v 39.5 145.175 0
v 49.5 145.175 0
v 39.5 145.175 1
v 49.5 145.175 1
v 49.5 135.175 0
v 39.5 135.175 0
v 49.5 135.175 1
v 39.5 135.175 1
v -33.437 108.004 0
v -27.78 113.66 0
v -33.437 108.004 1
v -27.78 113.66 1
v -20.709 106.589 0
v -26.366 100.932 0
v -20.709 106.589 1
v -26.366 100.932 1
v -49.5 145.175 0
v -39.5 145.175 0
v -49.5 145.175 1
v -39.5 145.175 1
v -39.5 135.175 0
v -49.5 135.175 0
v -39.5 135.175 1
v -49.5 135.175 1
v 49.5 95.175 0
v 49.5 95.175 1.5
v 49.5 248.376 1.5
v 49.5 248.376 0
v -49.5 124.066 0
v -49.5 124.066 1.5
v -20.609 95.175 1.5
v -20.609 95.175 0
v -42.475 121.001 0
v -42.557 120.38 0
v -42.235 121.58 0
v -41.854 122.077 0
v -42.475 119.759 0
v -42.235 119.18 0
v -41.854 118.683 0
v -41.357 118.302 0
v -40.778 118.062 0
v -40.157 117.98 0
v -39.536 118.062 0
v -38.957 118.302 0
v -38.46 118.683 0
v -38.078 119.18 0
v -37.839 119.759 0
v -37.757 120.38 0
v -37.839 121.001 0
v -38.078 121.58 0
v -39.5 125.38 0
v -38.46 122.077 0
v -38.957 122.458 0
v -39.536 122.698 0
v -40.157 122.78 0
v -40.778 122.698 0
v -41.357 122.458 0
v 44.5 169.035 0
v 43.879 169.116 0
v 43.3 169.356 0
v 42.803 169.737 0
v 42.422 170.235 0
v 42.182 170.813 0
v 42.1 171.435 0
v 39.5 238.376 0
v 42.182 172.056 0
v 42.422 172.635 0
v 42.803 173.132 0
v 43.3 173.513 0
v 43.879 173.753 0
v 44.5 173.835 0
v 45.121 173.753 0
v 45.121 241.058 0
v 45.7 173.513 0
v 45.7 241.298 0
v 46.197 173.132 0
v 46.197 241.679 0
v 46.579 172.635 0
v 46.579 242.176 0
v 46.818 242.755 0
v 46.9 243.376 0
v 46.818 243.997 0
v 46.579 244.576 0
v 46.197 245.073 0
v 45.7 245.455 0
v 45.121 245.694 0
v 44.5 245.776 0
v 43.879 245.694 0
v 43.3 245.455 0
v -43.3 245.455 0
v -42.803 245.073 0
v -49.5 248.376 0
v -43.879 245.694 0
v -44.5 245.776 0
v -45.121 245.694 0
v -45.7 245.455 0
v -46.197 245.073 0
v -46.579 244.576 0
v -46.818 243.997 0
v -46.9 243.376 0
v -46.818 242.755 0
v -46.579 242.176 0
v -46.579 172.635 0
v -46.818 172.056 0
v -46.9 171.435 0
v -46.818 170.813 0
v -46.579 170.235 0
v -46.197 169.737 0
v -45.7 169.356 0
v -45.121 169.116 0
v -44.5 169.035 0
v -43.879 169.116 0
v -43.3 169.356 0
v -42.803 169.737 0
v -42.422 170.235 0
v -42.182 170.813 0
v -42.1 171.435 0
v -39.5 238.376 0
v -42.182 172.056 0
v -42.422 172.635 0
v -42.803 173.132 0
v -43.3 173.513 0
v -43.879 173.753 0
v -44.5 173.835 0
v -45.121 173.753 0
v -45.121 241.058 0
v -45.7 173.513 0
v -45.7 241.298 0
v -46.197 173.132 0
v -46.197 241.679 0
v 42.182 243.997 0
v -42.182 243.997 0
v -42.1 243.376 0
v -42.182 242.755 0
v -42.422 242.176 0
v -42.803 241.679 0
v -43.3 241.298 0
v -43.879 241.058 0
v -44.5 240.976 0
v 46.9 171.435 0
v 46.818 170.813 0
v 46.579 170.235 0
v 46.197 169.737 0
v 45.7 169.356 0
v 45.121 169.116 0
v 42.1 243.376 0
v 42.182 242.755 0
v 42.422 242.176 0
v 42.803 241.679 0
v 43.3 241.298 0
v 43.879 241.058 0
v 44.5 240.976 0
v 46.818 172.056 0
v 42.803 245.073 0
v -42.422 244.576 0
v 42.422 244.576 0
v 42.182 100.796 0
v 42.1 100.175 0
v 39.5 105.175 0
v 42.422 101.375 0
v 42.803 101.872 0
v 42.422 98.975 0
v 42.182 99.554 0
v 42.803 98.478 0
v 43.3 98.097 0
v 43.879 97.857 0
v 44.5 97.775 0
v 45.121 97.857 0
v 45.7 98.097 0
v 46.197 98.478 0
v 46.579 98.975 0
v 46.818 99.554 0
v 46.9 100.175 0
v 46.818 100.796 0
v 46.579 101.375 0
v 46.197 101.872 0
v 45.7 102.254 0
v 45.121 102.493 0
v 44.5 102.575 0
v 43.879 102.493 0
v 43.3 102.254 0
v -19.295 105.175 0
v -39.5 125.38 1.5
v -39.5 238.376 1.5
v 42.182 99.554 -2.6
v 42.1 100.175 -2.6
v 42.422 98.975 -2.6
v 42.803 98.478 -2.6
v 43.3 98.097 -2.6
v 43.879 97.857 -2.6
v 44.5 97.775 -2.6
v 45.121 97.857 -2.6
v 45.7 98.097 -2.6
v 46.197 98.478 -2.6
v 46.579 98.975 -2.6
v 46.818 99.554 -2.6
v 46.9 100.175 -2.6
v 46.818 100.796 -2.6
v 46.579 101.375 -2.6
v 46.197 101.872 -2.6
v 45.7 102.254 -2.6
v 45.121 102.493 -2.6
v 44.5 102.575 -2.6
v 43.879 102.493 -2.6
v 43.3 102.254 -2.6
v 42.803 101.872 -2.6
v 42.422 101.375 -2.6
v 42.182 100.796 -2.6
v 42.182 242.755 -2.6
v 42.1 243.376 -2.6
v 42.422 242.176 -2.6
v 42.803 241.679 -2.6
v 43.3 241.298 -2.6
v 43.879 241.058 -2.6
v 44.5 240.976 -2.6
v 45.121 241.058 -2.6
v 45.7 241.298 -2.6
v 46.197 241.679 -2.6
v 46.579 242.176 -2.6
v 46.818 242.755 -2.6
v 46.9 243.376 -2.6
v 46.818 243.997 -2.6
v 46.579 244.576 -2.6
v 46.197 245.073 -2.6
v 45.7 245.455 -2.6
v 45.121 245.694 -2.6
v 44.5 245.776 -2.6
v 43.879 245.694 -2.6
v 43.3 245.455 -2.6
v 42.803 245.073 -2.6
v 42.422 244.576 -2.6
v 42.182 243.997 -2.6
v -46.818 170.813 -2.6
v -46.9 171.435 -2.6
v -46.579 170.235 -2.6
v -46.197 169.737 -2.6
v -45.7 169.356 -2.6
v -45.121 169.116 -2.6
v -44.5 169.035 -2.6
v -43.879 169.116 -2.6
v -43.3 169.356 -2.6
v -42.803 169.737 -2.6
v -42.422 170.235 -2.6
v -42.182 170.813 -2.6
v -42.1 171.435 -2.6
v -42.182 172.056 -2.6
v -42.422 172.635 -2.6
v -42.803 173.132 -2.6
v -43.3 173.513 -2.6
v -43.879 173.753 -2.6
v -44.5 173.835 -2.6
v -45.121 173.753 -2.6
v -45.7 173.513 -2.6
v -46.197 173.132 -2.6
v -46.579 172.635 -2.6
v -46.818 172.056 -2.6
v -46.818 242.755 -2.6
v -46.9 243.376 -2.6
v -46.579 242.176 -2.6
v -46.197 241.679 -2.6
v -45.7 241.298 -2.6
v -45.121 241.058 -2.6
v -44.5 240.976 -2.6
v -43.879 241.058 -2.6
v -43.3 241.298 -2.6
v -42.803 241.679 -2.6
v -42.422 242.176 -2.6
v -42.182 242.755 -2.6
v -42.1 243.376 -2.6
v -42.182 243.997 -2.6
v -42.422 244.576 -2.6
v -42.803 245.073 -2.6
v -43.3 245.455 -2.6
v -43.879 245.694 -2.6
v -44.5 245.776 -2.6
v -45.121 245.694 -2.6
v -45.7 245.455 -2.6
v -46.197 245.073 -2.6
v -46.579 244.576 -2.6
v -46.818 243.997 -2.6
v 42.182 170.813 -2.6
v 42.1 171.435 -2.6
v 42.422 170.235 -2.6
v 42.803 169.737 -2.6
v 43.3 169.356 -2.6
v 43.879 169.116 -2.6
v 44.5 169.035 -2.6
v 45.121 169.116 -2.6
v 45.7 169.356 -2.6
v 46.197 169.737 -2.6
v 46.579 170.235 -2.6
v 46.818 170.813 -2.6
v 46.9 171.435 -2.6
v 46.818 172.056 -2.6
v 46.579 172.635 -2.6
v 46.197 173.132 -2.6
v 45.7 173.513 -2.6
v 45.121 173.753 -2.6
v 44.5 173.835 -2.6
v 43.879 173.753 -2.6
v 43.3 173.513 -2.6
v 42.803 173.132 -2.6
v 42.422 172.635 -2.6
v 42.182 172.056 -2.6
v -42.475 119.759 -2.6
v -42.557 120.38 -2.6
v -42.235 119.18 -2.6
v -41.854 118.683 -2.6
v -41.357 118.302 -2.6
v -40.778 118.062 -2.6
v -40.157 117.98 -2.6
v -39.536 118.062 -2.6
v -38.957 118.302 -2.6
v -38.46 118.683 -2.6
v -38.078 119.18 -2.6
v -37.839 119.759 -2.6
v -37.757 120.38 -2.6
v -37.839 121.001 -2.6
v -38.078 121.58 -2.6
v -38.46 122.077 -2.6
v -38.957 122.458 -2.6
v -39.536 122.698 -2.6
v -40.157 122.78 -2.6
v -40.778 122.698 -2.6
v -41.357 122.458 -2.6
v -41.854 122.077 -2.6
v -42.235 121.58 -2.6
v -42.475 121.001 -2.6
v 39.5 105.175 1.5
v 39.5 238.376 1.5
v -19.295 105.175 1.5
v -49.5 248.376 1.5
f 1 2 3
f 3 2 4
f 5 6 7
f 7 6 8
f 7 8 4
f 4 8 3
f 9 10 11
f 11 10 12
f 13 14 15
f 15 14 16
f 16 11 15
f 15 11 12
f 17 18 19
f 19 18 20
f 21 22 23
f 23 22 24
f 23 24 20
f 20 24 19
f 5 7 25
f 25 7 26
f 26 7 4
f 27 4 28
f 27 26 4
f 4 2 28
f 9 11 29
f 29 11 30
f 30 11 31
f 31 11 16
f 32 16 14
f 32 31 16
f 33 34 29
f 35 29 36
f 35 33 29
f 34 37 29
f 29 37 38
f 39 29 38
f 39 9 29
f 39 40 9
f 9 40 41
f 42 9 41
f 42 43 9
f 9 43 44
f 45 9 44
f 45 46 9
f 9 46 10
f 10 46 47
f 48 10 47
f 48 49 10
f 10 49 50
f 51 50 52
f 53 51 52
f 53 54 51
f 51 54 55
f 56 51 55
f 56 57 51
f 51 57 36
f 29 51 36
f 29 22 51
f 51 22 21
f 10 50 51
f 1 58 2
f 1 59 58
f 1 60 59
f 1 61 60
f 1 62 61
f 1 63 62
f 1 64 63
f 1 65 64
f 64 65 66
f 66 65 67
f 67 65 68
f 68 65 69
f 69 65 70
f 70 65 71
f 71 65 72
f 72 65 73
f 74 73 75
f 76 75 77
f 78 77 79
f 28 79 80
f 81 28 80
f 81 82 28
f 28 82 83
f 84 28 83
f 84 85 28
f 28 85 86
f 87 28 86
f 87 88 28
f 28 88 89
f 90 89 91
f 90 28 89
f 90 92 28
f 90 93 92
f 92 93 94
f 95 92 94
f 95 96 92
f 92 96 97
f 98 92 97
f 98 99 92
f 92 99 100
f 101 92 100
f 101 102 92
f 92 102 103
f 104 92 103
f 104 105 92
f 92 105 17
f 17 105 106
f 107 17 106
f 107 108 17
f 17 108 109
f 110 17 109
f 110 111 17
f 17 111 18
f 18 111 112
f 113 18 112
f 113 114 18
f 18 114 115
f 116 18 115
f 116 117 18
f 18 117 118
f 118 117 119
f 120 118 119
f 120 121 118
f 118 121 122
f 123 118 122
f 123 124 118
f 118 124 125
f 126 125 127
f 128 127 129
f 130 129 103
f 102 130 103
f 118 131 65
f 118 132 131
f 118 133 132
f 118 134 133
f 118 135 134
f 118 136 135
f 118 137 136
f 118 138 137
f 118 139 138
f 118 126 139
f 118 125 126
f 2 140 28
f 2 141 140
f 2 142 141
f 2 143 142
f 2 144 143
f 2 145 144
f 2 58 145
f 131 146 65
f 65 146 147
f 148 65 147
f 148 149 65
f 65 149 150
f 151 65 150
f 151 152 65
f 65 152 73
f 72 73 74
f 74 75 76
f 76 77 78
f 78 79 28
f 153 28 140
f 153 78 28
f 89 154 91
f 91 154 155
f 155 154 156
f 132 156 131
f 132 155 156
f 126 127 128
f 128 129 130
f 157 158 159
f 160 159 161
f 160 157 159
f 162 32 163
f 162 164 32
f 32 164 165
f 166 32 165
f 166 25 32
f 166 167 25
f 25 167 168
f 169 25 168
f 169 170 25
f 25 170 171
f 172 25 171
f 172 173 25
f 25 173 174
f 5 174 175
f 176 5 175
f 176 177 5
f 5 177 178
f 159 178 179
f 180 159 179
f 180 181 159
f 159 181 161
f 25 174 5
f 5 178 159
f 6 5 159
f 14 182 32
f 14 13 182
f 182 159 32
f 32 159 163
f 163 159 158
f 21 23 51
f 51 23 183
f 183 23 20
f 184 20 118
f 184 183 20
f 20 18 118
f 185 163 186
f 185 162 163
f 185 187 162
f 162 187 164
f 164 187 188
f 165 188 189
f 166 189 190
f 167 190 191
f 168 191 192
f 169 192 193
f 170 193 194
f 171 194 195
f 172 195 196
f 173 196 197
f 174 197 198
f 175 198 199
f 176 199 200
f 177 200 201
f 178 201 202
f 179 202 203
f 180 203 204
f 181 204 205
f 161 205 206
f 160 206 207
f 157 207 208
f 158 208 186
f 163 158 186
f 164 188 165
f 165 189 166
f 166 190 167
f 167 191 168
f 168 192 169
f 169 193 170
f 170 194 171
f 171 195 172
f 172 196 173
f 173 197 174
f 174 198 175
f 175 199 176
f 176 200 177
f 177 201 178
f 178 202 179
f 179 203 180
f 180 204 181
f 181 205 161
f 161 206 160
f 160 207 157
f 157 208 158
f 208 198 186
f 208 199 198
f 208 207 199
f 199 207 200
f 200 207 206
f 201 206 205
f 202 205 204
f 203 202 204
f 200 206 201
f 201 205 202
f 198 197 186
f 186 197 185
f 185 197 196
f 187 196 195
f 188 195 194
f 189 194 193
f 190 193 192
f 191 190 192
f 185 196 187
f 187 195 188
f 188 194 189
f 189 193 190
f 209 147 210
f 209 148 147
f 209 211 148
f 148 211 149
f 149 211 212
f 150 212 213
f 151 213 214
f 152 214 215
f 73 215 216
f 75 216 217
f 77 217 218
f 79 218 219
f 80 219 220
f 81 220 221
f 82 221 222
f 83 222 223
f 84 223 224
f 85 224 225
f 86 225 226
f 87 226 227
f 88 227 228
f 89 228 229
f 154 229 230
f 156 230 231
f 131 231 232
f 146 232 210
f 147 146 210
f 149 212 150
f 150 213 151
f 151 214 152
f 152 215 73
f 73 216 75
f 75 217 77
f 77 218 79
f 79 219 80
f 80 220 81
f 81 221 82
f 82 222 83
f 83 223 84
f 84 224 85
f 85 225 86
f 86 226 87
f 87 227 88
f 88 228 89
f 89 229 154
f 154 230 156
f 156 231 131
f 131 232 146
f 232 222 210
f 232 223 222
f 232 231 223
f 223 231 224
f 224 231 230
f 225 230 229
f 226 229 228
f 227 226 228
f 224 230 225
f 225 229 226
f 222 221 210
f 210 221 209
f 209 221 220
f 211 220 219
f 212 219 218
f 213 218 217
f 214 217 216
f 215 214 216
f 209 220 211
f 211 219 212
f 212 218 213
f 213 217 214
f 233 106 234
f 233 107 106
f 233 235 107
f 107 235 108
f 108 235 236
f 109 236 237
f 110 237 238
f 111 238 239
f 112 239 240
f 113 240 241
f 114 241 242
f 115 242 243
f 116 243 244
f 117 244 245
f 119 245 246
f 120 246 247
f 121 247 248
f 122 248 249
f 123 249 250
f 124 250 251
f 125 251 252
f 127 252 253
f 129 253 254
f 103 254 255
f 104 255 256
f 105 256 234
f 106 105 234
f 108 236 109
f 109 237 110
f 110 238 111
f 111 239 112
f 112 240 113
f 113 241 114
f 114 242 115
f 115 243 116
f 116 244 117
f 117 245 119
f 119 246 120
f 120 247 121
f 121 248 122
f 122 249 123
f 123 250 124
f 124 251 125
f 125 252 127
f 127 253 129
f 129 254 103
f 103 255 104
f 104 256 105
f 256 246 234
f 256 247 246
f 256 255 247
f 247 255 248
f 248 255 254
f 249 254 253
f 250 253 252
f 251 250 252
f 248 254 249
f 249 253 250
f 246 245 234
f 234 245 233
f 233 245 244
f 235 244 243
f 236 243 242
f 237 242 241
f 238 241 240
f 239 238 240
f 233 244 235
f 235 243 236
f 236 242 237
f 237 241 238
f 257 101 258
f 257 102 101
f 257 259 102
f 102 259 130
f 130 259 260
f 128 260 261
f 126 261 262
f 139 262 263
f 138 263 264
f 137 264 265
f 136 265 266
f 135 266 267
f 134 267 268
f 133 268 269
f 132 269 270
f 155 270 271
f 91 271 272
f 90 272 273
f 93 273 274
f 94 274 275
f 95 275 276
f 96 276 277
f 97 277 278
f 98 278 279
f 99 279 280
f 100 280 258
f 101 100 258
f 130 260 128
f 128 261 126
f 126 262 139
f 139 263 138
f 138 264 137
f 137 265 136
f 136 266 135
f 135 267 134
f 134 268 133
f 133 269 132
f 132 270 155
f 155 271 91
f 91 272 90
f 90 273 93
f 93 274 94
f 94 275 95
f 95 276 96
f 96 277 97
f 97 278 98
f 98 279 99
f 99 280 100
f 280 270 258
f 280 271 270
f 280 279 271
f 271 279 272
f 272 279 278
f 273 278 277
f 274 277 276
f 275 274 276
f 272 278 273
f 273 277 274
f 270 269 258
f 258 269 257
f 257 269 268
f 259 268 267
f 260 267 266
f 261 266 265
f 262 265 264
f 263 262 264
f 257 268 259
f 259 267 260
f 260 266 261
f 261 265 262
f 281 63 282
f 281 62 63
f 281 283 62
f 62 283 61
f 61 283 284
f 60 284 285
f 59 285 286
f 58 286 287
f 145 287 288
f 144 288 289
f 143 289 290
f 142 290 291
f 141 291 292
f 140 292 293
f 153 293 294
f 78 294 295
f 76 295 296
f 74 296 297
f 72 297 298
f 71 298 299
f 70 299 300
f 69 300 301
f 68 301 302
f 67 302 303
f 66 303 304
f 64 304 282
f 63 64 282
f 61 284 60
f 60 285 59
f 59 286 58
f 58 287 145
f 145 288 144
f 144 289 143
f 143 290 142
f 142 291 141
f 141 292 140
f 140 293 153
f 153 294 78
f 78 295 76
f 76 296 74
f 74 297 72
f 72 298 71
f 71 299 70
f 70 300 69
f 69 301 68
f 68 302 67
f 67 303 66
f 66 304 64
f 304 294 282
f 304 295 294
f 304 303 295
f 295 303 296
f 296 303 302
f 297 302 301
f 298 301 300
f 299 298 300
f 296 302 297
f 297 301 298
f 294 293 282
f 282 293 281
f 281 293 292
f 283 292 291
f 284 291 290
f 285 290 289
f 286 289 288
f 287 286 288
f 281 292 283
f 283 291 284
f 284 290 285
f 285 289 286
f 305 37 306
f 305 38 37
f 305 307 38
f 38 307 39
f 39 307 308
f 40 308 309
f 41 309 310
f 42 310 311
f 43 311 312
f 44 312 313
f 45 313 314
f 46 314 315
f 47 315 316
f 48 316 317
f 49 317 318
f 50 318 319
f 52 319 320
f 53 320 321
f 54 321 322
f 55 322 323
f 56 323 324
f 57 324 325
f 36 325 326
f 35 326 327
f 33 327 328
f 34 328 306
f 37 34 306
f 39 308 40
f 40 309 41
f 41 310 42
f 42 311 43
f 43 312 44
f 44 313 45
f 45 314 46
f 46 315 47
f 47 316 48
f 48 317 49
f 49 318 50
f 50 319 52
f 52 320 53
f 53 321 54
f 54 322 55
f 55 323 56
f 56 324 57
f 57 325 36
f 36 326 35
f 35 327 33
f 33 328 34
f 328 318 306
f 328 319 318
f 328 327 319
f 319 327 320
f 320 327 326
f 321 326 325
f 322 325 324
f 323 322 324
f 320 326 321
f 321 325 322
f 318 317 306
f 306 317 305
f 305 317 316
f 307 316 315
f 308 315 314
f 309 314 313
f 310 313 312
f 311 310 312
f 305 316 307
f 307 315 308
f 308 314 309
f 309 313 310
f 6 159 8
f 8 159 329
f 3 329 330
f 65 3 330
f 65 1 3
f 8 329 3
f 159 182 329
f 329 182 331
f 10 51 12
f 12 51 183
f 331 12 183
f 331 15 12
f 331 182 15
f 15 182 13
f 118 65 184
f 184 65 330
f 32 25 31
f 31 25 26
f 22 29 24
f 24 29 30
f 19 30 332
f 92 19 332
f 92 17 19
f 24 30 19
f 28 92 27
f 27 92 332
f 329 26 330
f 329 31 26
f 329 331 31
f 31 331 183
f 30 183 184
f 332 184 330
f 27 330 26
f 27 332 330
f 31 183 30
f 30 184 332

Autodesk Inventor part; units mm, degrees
ref_plane "YZ Plane" through (0, 0, 0) normal (1, 0, 0) x (0, 1, 0)
ref_plane "XZ Plane" through (0, 0, 0) normal (0, 1, 0) x (-1, 0, 0)
ref_plane "XY Plane" through (0, 0, 0) normal (0, 0, 1) x (1, 0, 0)
sketch "Skizze1" plane through (0, 0, 0) normal (0, 0, 1) x (1, 0, 0)
  line L0 (49.5001, 248.3761) -> (-49.5001, 248.3761) projected
  line L1 (49.5001, 95.1751) -> (49.5001, 248.3761) projected
  line L2 (-49.5001, 248.3761) -> (-49.5001, 95.1751) construction
  line L3 (-49.5001, 95.1751) -> (49.5001, 95.1751) construction
  line L4 (49.5001, 95.1751) -> (-20.5915, 95.1751)
  line L5 (-20.5915, 95.1751) -> (-49.5001, 124.0836)
  line L6 (-49.5001, 124.0836) -> (-49.5001, 248.3761)
  line L7 (-39.5001, 238.3761) -> (39.5001, 238.3761)
  line L8 (39.5001, 238.3761) -> (39.5001, 105.1751)
  line L9 (39.5001, 105.1751) -> (-19.2778, 105.1751)
  line L10 (-19.2778, 105.1751) -> (-39.5001, 125.3973)
  line L11 (-39.5001, 125.3973) -> (-39.5001, 238.3761)
  circle A0 centre (44.5001, 243.3761) radius 2.5 projected
  circle A1 centre (-44.5001, 243.3761) radius 2.5 projected
  circle A2 centre (-44.5001, 171.4345) radius 2.5 projected
  circle A3 centre (44.5001, 171.4345) radius 2.5 projected
  circle A4 centre (44.5001, 100.1751) radius 2.5 projected
  circle A5 centre (-20.9666, 110.5265) radius 1.75 projected
  circle A6 centre (-24.6237, 114.0565) radius 1.75 projected
  circle A7 centre (-44.8001, 100.0237) radius 1.75 projected
  circle A8 centre (-29.7001, 100.0237) radius 1.75 projected
  point P0 (0, 0)
  dimension "d0" = 135
  dimension "d1" = 8
  dimension "d3" = 10
  dimension "d4" = 10
  dimension "d5" = 10
  dimension "d6" = 10
  dimension "d22" = 2.5
extrude "Extrusion1" add sketch "Skizze1" along normal blind 1.5 contours L1 L4 L5 L6 L0 | A0 | A1 | A2 | A3 | A4
sketch "Skizze2" plane through (0, 0, 0) normal (0, 0, -1) x (-1, 0, 0)
  circle A0 centre (-44.5001, 100.1751) radius 2.5 projected
  circle A1 centre (-44.5001, 171.4345) radius 2.5 projected
  circle A2 centre (-44.5001, 243.3761) radius 2.5 projected
  circle A3 centre (40.1569, 120.3973) radius 2.5 projected
  circle A4 centre (44.5001, 171.4345) radius 2.5 projected
  circle A5 centre (44.5001, 243.3761) radius 2.5 projected
  circle A6 centre (-44.5001, 100.1751) radius 2.4
  circle A7 centre (-44.5001, 171.4345) radius 2.4
  circle A8 centre (-44.5001, 243.3761) radius 2.4
  circle A9 centre (44.5001, 243.3761) radius 2.4
  circle A10 centre (44.5001, 171.4345) radius 2.4
  circle A11 centre (40.1569, 120.3973) radius 2.4
  dimension "d23" = 0.1
  dimension "d24" = 4.8
  dimension "d25" = 4.8
  dimension "d26" = 4.8
  dimension "d27" = 4.8
  dimension "d28" = 4.8
  dimension "d29" = 4.8
extrude "Extrusion2" add sketch "Skizze2" along normal blind 2.6 contours A6 | A7 | A8 | A9 | A10 | A11
sketch "Skizze3" plane through (0, 0, 0) normal (0, 0, -1) x (-1, 0, 0)
  line L0 (-49.5001, 95.1751) -> (-49.5001, 248.3761) projected
  line L1 (-39.5001, 238.3761) -> (-39.5001, 105.1751) projected
  line L2 (-49.5001, 135.1751) -> (-39.5001, 135.1751)
  line L3 (-39.5001, 135.1751) -> (-39.5001, 145.1751)
  line L4 (-39.5001, 145.1751) -> (-49.5001, 145.1751)
  line L5 (-49.5001, 145.1751) -> (-49.5001, 135.1751)
  line L6 (39.5001, 238.3761) -> (39.5001, 125.3973) projected
  line L7 (49.5001, 248.3761) -> (49.5001, 124.0836) projected
  line L8 (39.5001, 135.1751) -> (49.5001, 135.1751)
  line L9 (49.5001, 135.1751) -> (49.5001, 145.1751)
  line L10 (49.5001, 145.1751) -> (39.5001, 145.1751)
  line L11 (39.5001, 145.1751) -> (39.5001, 135.1751)
  line L12 (39.5001, 125.3973) -> (19.2778, 105.1751) projected
  line L13 (20.692, 106.5893) -> (26.3489, 100.9324)
  line L14 (49.5001, 124.0836) -> (20.5915, 95.1751) projected
  line L15 (26.3489, 100.9324) -> (33.42, 108.0035)
  line L16 (33.42, 108.0035) -> (27.7631, 113.6604)
  line L17 (27.7631, 113.6604) -> (20.692, 106.5893)
  line L18 (20.5915, 95.1751) -> (-49.5001, 95.1751) projected
  point P0 (0, 0)
  dimension "d11" = 10
  dimension "d12" = 10
  dimension "d13" = 10
  dimension "d14" = 0
  dimension "d15" = 40
  dimension "d16" = 2
extrude "Extrusion3" cut sketch "Skizze3" against normal blind 1 contours L0 L4 L1 L2 | L13 L12 L16 L14 | L8 L6 L10 L7
equation "\"d4\" = d3"
equation "\"d5\" = d3"
equation "\"d6\" = d3"
equation "\"d25\" = d24"
equation "\"d26\" = d24"
equation "\"d27\" = d24"
equation "\"d28\" = d24"
equation "\"d29\" = d24"
equation "\"d12\" = d11"
equation "\"d13\" = d11"
properties part number "Backplate_V2"
